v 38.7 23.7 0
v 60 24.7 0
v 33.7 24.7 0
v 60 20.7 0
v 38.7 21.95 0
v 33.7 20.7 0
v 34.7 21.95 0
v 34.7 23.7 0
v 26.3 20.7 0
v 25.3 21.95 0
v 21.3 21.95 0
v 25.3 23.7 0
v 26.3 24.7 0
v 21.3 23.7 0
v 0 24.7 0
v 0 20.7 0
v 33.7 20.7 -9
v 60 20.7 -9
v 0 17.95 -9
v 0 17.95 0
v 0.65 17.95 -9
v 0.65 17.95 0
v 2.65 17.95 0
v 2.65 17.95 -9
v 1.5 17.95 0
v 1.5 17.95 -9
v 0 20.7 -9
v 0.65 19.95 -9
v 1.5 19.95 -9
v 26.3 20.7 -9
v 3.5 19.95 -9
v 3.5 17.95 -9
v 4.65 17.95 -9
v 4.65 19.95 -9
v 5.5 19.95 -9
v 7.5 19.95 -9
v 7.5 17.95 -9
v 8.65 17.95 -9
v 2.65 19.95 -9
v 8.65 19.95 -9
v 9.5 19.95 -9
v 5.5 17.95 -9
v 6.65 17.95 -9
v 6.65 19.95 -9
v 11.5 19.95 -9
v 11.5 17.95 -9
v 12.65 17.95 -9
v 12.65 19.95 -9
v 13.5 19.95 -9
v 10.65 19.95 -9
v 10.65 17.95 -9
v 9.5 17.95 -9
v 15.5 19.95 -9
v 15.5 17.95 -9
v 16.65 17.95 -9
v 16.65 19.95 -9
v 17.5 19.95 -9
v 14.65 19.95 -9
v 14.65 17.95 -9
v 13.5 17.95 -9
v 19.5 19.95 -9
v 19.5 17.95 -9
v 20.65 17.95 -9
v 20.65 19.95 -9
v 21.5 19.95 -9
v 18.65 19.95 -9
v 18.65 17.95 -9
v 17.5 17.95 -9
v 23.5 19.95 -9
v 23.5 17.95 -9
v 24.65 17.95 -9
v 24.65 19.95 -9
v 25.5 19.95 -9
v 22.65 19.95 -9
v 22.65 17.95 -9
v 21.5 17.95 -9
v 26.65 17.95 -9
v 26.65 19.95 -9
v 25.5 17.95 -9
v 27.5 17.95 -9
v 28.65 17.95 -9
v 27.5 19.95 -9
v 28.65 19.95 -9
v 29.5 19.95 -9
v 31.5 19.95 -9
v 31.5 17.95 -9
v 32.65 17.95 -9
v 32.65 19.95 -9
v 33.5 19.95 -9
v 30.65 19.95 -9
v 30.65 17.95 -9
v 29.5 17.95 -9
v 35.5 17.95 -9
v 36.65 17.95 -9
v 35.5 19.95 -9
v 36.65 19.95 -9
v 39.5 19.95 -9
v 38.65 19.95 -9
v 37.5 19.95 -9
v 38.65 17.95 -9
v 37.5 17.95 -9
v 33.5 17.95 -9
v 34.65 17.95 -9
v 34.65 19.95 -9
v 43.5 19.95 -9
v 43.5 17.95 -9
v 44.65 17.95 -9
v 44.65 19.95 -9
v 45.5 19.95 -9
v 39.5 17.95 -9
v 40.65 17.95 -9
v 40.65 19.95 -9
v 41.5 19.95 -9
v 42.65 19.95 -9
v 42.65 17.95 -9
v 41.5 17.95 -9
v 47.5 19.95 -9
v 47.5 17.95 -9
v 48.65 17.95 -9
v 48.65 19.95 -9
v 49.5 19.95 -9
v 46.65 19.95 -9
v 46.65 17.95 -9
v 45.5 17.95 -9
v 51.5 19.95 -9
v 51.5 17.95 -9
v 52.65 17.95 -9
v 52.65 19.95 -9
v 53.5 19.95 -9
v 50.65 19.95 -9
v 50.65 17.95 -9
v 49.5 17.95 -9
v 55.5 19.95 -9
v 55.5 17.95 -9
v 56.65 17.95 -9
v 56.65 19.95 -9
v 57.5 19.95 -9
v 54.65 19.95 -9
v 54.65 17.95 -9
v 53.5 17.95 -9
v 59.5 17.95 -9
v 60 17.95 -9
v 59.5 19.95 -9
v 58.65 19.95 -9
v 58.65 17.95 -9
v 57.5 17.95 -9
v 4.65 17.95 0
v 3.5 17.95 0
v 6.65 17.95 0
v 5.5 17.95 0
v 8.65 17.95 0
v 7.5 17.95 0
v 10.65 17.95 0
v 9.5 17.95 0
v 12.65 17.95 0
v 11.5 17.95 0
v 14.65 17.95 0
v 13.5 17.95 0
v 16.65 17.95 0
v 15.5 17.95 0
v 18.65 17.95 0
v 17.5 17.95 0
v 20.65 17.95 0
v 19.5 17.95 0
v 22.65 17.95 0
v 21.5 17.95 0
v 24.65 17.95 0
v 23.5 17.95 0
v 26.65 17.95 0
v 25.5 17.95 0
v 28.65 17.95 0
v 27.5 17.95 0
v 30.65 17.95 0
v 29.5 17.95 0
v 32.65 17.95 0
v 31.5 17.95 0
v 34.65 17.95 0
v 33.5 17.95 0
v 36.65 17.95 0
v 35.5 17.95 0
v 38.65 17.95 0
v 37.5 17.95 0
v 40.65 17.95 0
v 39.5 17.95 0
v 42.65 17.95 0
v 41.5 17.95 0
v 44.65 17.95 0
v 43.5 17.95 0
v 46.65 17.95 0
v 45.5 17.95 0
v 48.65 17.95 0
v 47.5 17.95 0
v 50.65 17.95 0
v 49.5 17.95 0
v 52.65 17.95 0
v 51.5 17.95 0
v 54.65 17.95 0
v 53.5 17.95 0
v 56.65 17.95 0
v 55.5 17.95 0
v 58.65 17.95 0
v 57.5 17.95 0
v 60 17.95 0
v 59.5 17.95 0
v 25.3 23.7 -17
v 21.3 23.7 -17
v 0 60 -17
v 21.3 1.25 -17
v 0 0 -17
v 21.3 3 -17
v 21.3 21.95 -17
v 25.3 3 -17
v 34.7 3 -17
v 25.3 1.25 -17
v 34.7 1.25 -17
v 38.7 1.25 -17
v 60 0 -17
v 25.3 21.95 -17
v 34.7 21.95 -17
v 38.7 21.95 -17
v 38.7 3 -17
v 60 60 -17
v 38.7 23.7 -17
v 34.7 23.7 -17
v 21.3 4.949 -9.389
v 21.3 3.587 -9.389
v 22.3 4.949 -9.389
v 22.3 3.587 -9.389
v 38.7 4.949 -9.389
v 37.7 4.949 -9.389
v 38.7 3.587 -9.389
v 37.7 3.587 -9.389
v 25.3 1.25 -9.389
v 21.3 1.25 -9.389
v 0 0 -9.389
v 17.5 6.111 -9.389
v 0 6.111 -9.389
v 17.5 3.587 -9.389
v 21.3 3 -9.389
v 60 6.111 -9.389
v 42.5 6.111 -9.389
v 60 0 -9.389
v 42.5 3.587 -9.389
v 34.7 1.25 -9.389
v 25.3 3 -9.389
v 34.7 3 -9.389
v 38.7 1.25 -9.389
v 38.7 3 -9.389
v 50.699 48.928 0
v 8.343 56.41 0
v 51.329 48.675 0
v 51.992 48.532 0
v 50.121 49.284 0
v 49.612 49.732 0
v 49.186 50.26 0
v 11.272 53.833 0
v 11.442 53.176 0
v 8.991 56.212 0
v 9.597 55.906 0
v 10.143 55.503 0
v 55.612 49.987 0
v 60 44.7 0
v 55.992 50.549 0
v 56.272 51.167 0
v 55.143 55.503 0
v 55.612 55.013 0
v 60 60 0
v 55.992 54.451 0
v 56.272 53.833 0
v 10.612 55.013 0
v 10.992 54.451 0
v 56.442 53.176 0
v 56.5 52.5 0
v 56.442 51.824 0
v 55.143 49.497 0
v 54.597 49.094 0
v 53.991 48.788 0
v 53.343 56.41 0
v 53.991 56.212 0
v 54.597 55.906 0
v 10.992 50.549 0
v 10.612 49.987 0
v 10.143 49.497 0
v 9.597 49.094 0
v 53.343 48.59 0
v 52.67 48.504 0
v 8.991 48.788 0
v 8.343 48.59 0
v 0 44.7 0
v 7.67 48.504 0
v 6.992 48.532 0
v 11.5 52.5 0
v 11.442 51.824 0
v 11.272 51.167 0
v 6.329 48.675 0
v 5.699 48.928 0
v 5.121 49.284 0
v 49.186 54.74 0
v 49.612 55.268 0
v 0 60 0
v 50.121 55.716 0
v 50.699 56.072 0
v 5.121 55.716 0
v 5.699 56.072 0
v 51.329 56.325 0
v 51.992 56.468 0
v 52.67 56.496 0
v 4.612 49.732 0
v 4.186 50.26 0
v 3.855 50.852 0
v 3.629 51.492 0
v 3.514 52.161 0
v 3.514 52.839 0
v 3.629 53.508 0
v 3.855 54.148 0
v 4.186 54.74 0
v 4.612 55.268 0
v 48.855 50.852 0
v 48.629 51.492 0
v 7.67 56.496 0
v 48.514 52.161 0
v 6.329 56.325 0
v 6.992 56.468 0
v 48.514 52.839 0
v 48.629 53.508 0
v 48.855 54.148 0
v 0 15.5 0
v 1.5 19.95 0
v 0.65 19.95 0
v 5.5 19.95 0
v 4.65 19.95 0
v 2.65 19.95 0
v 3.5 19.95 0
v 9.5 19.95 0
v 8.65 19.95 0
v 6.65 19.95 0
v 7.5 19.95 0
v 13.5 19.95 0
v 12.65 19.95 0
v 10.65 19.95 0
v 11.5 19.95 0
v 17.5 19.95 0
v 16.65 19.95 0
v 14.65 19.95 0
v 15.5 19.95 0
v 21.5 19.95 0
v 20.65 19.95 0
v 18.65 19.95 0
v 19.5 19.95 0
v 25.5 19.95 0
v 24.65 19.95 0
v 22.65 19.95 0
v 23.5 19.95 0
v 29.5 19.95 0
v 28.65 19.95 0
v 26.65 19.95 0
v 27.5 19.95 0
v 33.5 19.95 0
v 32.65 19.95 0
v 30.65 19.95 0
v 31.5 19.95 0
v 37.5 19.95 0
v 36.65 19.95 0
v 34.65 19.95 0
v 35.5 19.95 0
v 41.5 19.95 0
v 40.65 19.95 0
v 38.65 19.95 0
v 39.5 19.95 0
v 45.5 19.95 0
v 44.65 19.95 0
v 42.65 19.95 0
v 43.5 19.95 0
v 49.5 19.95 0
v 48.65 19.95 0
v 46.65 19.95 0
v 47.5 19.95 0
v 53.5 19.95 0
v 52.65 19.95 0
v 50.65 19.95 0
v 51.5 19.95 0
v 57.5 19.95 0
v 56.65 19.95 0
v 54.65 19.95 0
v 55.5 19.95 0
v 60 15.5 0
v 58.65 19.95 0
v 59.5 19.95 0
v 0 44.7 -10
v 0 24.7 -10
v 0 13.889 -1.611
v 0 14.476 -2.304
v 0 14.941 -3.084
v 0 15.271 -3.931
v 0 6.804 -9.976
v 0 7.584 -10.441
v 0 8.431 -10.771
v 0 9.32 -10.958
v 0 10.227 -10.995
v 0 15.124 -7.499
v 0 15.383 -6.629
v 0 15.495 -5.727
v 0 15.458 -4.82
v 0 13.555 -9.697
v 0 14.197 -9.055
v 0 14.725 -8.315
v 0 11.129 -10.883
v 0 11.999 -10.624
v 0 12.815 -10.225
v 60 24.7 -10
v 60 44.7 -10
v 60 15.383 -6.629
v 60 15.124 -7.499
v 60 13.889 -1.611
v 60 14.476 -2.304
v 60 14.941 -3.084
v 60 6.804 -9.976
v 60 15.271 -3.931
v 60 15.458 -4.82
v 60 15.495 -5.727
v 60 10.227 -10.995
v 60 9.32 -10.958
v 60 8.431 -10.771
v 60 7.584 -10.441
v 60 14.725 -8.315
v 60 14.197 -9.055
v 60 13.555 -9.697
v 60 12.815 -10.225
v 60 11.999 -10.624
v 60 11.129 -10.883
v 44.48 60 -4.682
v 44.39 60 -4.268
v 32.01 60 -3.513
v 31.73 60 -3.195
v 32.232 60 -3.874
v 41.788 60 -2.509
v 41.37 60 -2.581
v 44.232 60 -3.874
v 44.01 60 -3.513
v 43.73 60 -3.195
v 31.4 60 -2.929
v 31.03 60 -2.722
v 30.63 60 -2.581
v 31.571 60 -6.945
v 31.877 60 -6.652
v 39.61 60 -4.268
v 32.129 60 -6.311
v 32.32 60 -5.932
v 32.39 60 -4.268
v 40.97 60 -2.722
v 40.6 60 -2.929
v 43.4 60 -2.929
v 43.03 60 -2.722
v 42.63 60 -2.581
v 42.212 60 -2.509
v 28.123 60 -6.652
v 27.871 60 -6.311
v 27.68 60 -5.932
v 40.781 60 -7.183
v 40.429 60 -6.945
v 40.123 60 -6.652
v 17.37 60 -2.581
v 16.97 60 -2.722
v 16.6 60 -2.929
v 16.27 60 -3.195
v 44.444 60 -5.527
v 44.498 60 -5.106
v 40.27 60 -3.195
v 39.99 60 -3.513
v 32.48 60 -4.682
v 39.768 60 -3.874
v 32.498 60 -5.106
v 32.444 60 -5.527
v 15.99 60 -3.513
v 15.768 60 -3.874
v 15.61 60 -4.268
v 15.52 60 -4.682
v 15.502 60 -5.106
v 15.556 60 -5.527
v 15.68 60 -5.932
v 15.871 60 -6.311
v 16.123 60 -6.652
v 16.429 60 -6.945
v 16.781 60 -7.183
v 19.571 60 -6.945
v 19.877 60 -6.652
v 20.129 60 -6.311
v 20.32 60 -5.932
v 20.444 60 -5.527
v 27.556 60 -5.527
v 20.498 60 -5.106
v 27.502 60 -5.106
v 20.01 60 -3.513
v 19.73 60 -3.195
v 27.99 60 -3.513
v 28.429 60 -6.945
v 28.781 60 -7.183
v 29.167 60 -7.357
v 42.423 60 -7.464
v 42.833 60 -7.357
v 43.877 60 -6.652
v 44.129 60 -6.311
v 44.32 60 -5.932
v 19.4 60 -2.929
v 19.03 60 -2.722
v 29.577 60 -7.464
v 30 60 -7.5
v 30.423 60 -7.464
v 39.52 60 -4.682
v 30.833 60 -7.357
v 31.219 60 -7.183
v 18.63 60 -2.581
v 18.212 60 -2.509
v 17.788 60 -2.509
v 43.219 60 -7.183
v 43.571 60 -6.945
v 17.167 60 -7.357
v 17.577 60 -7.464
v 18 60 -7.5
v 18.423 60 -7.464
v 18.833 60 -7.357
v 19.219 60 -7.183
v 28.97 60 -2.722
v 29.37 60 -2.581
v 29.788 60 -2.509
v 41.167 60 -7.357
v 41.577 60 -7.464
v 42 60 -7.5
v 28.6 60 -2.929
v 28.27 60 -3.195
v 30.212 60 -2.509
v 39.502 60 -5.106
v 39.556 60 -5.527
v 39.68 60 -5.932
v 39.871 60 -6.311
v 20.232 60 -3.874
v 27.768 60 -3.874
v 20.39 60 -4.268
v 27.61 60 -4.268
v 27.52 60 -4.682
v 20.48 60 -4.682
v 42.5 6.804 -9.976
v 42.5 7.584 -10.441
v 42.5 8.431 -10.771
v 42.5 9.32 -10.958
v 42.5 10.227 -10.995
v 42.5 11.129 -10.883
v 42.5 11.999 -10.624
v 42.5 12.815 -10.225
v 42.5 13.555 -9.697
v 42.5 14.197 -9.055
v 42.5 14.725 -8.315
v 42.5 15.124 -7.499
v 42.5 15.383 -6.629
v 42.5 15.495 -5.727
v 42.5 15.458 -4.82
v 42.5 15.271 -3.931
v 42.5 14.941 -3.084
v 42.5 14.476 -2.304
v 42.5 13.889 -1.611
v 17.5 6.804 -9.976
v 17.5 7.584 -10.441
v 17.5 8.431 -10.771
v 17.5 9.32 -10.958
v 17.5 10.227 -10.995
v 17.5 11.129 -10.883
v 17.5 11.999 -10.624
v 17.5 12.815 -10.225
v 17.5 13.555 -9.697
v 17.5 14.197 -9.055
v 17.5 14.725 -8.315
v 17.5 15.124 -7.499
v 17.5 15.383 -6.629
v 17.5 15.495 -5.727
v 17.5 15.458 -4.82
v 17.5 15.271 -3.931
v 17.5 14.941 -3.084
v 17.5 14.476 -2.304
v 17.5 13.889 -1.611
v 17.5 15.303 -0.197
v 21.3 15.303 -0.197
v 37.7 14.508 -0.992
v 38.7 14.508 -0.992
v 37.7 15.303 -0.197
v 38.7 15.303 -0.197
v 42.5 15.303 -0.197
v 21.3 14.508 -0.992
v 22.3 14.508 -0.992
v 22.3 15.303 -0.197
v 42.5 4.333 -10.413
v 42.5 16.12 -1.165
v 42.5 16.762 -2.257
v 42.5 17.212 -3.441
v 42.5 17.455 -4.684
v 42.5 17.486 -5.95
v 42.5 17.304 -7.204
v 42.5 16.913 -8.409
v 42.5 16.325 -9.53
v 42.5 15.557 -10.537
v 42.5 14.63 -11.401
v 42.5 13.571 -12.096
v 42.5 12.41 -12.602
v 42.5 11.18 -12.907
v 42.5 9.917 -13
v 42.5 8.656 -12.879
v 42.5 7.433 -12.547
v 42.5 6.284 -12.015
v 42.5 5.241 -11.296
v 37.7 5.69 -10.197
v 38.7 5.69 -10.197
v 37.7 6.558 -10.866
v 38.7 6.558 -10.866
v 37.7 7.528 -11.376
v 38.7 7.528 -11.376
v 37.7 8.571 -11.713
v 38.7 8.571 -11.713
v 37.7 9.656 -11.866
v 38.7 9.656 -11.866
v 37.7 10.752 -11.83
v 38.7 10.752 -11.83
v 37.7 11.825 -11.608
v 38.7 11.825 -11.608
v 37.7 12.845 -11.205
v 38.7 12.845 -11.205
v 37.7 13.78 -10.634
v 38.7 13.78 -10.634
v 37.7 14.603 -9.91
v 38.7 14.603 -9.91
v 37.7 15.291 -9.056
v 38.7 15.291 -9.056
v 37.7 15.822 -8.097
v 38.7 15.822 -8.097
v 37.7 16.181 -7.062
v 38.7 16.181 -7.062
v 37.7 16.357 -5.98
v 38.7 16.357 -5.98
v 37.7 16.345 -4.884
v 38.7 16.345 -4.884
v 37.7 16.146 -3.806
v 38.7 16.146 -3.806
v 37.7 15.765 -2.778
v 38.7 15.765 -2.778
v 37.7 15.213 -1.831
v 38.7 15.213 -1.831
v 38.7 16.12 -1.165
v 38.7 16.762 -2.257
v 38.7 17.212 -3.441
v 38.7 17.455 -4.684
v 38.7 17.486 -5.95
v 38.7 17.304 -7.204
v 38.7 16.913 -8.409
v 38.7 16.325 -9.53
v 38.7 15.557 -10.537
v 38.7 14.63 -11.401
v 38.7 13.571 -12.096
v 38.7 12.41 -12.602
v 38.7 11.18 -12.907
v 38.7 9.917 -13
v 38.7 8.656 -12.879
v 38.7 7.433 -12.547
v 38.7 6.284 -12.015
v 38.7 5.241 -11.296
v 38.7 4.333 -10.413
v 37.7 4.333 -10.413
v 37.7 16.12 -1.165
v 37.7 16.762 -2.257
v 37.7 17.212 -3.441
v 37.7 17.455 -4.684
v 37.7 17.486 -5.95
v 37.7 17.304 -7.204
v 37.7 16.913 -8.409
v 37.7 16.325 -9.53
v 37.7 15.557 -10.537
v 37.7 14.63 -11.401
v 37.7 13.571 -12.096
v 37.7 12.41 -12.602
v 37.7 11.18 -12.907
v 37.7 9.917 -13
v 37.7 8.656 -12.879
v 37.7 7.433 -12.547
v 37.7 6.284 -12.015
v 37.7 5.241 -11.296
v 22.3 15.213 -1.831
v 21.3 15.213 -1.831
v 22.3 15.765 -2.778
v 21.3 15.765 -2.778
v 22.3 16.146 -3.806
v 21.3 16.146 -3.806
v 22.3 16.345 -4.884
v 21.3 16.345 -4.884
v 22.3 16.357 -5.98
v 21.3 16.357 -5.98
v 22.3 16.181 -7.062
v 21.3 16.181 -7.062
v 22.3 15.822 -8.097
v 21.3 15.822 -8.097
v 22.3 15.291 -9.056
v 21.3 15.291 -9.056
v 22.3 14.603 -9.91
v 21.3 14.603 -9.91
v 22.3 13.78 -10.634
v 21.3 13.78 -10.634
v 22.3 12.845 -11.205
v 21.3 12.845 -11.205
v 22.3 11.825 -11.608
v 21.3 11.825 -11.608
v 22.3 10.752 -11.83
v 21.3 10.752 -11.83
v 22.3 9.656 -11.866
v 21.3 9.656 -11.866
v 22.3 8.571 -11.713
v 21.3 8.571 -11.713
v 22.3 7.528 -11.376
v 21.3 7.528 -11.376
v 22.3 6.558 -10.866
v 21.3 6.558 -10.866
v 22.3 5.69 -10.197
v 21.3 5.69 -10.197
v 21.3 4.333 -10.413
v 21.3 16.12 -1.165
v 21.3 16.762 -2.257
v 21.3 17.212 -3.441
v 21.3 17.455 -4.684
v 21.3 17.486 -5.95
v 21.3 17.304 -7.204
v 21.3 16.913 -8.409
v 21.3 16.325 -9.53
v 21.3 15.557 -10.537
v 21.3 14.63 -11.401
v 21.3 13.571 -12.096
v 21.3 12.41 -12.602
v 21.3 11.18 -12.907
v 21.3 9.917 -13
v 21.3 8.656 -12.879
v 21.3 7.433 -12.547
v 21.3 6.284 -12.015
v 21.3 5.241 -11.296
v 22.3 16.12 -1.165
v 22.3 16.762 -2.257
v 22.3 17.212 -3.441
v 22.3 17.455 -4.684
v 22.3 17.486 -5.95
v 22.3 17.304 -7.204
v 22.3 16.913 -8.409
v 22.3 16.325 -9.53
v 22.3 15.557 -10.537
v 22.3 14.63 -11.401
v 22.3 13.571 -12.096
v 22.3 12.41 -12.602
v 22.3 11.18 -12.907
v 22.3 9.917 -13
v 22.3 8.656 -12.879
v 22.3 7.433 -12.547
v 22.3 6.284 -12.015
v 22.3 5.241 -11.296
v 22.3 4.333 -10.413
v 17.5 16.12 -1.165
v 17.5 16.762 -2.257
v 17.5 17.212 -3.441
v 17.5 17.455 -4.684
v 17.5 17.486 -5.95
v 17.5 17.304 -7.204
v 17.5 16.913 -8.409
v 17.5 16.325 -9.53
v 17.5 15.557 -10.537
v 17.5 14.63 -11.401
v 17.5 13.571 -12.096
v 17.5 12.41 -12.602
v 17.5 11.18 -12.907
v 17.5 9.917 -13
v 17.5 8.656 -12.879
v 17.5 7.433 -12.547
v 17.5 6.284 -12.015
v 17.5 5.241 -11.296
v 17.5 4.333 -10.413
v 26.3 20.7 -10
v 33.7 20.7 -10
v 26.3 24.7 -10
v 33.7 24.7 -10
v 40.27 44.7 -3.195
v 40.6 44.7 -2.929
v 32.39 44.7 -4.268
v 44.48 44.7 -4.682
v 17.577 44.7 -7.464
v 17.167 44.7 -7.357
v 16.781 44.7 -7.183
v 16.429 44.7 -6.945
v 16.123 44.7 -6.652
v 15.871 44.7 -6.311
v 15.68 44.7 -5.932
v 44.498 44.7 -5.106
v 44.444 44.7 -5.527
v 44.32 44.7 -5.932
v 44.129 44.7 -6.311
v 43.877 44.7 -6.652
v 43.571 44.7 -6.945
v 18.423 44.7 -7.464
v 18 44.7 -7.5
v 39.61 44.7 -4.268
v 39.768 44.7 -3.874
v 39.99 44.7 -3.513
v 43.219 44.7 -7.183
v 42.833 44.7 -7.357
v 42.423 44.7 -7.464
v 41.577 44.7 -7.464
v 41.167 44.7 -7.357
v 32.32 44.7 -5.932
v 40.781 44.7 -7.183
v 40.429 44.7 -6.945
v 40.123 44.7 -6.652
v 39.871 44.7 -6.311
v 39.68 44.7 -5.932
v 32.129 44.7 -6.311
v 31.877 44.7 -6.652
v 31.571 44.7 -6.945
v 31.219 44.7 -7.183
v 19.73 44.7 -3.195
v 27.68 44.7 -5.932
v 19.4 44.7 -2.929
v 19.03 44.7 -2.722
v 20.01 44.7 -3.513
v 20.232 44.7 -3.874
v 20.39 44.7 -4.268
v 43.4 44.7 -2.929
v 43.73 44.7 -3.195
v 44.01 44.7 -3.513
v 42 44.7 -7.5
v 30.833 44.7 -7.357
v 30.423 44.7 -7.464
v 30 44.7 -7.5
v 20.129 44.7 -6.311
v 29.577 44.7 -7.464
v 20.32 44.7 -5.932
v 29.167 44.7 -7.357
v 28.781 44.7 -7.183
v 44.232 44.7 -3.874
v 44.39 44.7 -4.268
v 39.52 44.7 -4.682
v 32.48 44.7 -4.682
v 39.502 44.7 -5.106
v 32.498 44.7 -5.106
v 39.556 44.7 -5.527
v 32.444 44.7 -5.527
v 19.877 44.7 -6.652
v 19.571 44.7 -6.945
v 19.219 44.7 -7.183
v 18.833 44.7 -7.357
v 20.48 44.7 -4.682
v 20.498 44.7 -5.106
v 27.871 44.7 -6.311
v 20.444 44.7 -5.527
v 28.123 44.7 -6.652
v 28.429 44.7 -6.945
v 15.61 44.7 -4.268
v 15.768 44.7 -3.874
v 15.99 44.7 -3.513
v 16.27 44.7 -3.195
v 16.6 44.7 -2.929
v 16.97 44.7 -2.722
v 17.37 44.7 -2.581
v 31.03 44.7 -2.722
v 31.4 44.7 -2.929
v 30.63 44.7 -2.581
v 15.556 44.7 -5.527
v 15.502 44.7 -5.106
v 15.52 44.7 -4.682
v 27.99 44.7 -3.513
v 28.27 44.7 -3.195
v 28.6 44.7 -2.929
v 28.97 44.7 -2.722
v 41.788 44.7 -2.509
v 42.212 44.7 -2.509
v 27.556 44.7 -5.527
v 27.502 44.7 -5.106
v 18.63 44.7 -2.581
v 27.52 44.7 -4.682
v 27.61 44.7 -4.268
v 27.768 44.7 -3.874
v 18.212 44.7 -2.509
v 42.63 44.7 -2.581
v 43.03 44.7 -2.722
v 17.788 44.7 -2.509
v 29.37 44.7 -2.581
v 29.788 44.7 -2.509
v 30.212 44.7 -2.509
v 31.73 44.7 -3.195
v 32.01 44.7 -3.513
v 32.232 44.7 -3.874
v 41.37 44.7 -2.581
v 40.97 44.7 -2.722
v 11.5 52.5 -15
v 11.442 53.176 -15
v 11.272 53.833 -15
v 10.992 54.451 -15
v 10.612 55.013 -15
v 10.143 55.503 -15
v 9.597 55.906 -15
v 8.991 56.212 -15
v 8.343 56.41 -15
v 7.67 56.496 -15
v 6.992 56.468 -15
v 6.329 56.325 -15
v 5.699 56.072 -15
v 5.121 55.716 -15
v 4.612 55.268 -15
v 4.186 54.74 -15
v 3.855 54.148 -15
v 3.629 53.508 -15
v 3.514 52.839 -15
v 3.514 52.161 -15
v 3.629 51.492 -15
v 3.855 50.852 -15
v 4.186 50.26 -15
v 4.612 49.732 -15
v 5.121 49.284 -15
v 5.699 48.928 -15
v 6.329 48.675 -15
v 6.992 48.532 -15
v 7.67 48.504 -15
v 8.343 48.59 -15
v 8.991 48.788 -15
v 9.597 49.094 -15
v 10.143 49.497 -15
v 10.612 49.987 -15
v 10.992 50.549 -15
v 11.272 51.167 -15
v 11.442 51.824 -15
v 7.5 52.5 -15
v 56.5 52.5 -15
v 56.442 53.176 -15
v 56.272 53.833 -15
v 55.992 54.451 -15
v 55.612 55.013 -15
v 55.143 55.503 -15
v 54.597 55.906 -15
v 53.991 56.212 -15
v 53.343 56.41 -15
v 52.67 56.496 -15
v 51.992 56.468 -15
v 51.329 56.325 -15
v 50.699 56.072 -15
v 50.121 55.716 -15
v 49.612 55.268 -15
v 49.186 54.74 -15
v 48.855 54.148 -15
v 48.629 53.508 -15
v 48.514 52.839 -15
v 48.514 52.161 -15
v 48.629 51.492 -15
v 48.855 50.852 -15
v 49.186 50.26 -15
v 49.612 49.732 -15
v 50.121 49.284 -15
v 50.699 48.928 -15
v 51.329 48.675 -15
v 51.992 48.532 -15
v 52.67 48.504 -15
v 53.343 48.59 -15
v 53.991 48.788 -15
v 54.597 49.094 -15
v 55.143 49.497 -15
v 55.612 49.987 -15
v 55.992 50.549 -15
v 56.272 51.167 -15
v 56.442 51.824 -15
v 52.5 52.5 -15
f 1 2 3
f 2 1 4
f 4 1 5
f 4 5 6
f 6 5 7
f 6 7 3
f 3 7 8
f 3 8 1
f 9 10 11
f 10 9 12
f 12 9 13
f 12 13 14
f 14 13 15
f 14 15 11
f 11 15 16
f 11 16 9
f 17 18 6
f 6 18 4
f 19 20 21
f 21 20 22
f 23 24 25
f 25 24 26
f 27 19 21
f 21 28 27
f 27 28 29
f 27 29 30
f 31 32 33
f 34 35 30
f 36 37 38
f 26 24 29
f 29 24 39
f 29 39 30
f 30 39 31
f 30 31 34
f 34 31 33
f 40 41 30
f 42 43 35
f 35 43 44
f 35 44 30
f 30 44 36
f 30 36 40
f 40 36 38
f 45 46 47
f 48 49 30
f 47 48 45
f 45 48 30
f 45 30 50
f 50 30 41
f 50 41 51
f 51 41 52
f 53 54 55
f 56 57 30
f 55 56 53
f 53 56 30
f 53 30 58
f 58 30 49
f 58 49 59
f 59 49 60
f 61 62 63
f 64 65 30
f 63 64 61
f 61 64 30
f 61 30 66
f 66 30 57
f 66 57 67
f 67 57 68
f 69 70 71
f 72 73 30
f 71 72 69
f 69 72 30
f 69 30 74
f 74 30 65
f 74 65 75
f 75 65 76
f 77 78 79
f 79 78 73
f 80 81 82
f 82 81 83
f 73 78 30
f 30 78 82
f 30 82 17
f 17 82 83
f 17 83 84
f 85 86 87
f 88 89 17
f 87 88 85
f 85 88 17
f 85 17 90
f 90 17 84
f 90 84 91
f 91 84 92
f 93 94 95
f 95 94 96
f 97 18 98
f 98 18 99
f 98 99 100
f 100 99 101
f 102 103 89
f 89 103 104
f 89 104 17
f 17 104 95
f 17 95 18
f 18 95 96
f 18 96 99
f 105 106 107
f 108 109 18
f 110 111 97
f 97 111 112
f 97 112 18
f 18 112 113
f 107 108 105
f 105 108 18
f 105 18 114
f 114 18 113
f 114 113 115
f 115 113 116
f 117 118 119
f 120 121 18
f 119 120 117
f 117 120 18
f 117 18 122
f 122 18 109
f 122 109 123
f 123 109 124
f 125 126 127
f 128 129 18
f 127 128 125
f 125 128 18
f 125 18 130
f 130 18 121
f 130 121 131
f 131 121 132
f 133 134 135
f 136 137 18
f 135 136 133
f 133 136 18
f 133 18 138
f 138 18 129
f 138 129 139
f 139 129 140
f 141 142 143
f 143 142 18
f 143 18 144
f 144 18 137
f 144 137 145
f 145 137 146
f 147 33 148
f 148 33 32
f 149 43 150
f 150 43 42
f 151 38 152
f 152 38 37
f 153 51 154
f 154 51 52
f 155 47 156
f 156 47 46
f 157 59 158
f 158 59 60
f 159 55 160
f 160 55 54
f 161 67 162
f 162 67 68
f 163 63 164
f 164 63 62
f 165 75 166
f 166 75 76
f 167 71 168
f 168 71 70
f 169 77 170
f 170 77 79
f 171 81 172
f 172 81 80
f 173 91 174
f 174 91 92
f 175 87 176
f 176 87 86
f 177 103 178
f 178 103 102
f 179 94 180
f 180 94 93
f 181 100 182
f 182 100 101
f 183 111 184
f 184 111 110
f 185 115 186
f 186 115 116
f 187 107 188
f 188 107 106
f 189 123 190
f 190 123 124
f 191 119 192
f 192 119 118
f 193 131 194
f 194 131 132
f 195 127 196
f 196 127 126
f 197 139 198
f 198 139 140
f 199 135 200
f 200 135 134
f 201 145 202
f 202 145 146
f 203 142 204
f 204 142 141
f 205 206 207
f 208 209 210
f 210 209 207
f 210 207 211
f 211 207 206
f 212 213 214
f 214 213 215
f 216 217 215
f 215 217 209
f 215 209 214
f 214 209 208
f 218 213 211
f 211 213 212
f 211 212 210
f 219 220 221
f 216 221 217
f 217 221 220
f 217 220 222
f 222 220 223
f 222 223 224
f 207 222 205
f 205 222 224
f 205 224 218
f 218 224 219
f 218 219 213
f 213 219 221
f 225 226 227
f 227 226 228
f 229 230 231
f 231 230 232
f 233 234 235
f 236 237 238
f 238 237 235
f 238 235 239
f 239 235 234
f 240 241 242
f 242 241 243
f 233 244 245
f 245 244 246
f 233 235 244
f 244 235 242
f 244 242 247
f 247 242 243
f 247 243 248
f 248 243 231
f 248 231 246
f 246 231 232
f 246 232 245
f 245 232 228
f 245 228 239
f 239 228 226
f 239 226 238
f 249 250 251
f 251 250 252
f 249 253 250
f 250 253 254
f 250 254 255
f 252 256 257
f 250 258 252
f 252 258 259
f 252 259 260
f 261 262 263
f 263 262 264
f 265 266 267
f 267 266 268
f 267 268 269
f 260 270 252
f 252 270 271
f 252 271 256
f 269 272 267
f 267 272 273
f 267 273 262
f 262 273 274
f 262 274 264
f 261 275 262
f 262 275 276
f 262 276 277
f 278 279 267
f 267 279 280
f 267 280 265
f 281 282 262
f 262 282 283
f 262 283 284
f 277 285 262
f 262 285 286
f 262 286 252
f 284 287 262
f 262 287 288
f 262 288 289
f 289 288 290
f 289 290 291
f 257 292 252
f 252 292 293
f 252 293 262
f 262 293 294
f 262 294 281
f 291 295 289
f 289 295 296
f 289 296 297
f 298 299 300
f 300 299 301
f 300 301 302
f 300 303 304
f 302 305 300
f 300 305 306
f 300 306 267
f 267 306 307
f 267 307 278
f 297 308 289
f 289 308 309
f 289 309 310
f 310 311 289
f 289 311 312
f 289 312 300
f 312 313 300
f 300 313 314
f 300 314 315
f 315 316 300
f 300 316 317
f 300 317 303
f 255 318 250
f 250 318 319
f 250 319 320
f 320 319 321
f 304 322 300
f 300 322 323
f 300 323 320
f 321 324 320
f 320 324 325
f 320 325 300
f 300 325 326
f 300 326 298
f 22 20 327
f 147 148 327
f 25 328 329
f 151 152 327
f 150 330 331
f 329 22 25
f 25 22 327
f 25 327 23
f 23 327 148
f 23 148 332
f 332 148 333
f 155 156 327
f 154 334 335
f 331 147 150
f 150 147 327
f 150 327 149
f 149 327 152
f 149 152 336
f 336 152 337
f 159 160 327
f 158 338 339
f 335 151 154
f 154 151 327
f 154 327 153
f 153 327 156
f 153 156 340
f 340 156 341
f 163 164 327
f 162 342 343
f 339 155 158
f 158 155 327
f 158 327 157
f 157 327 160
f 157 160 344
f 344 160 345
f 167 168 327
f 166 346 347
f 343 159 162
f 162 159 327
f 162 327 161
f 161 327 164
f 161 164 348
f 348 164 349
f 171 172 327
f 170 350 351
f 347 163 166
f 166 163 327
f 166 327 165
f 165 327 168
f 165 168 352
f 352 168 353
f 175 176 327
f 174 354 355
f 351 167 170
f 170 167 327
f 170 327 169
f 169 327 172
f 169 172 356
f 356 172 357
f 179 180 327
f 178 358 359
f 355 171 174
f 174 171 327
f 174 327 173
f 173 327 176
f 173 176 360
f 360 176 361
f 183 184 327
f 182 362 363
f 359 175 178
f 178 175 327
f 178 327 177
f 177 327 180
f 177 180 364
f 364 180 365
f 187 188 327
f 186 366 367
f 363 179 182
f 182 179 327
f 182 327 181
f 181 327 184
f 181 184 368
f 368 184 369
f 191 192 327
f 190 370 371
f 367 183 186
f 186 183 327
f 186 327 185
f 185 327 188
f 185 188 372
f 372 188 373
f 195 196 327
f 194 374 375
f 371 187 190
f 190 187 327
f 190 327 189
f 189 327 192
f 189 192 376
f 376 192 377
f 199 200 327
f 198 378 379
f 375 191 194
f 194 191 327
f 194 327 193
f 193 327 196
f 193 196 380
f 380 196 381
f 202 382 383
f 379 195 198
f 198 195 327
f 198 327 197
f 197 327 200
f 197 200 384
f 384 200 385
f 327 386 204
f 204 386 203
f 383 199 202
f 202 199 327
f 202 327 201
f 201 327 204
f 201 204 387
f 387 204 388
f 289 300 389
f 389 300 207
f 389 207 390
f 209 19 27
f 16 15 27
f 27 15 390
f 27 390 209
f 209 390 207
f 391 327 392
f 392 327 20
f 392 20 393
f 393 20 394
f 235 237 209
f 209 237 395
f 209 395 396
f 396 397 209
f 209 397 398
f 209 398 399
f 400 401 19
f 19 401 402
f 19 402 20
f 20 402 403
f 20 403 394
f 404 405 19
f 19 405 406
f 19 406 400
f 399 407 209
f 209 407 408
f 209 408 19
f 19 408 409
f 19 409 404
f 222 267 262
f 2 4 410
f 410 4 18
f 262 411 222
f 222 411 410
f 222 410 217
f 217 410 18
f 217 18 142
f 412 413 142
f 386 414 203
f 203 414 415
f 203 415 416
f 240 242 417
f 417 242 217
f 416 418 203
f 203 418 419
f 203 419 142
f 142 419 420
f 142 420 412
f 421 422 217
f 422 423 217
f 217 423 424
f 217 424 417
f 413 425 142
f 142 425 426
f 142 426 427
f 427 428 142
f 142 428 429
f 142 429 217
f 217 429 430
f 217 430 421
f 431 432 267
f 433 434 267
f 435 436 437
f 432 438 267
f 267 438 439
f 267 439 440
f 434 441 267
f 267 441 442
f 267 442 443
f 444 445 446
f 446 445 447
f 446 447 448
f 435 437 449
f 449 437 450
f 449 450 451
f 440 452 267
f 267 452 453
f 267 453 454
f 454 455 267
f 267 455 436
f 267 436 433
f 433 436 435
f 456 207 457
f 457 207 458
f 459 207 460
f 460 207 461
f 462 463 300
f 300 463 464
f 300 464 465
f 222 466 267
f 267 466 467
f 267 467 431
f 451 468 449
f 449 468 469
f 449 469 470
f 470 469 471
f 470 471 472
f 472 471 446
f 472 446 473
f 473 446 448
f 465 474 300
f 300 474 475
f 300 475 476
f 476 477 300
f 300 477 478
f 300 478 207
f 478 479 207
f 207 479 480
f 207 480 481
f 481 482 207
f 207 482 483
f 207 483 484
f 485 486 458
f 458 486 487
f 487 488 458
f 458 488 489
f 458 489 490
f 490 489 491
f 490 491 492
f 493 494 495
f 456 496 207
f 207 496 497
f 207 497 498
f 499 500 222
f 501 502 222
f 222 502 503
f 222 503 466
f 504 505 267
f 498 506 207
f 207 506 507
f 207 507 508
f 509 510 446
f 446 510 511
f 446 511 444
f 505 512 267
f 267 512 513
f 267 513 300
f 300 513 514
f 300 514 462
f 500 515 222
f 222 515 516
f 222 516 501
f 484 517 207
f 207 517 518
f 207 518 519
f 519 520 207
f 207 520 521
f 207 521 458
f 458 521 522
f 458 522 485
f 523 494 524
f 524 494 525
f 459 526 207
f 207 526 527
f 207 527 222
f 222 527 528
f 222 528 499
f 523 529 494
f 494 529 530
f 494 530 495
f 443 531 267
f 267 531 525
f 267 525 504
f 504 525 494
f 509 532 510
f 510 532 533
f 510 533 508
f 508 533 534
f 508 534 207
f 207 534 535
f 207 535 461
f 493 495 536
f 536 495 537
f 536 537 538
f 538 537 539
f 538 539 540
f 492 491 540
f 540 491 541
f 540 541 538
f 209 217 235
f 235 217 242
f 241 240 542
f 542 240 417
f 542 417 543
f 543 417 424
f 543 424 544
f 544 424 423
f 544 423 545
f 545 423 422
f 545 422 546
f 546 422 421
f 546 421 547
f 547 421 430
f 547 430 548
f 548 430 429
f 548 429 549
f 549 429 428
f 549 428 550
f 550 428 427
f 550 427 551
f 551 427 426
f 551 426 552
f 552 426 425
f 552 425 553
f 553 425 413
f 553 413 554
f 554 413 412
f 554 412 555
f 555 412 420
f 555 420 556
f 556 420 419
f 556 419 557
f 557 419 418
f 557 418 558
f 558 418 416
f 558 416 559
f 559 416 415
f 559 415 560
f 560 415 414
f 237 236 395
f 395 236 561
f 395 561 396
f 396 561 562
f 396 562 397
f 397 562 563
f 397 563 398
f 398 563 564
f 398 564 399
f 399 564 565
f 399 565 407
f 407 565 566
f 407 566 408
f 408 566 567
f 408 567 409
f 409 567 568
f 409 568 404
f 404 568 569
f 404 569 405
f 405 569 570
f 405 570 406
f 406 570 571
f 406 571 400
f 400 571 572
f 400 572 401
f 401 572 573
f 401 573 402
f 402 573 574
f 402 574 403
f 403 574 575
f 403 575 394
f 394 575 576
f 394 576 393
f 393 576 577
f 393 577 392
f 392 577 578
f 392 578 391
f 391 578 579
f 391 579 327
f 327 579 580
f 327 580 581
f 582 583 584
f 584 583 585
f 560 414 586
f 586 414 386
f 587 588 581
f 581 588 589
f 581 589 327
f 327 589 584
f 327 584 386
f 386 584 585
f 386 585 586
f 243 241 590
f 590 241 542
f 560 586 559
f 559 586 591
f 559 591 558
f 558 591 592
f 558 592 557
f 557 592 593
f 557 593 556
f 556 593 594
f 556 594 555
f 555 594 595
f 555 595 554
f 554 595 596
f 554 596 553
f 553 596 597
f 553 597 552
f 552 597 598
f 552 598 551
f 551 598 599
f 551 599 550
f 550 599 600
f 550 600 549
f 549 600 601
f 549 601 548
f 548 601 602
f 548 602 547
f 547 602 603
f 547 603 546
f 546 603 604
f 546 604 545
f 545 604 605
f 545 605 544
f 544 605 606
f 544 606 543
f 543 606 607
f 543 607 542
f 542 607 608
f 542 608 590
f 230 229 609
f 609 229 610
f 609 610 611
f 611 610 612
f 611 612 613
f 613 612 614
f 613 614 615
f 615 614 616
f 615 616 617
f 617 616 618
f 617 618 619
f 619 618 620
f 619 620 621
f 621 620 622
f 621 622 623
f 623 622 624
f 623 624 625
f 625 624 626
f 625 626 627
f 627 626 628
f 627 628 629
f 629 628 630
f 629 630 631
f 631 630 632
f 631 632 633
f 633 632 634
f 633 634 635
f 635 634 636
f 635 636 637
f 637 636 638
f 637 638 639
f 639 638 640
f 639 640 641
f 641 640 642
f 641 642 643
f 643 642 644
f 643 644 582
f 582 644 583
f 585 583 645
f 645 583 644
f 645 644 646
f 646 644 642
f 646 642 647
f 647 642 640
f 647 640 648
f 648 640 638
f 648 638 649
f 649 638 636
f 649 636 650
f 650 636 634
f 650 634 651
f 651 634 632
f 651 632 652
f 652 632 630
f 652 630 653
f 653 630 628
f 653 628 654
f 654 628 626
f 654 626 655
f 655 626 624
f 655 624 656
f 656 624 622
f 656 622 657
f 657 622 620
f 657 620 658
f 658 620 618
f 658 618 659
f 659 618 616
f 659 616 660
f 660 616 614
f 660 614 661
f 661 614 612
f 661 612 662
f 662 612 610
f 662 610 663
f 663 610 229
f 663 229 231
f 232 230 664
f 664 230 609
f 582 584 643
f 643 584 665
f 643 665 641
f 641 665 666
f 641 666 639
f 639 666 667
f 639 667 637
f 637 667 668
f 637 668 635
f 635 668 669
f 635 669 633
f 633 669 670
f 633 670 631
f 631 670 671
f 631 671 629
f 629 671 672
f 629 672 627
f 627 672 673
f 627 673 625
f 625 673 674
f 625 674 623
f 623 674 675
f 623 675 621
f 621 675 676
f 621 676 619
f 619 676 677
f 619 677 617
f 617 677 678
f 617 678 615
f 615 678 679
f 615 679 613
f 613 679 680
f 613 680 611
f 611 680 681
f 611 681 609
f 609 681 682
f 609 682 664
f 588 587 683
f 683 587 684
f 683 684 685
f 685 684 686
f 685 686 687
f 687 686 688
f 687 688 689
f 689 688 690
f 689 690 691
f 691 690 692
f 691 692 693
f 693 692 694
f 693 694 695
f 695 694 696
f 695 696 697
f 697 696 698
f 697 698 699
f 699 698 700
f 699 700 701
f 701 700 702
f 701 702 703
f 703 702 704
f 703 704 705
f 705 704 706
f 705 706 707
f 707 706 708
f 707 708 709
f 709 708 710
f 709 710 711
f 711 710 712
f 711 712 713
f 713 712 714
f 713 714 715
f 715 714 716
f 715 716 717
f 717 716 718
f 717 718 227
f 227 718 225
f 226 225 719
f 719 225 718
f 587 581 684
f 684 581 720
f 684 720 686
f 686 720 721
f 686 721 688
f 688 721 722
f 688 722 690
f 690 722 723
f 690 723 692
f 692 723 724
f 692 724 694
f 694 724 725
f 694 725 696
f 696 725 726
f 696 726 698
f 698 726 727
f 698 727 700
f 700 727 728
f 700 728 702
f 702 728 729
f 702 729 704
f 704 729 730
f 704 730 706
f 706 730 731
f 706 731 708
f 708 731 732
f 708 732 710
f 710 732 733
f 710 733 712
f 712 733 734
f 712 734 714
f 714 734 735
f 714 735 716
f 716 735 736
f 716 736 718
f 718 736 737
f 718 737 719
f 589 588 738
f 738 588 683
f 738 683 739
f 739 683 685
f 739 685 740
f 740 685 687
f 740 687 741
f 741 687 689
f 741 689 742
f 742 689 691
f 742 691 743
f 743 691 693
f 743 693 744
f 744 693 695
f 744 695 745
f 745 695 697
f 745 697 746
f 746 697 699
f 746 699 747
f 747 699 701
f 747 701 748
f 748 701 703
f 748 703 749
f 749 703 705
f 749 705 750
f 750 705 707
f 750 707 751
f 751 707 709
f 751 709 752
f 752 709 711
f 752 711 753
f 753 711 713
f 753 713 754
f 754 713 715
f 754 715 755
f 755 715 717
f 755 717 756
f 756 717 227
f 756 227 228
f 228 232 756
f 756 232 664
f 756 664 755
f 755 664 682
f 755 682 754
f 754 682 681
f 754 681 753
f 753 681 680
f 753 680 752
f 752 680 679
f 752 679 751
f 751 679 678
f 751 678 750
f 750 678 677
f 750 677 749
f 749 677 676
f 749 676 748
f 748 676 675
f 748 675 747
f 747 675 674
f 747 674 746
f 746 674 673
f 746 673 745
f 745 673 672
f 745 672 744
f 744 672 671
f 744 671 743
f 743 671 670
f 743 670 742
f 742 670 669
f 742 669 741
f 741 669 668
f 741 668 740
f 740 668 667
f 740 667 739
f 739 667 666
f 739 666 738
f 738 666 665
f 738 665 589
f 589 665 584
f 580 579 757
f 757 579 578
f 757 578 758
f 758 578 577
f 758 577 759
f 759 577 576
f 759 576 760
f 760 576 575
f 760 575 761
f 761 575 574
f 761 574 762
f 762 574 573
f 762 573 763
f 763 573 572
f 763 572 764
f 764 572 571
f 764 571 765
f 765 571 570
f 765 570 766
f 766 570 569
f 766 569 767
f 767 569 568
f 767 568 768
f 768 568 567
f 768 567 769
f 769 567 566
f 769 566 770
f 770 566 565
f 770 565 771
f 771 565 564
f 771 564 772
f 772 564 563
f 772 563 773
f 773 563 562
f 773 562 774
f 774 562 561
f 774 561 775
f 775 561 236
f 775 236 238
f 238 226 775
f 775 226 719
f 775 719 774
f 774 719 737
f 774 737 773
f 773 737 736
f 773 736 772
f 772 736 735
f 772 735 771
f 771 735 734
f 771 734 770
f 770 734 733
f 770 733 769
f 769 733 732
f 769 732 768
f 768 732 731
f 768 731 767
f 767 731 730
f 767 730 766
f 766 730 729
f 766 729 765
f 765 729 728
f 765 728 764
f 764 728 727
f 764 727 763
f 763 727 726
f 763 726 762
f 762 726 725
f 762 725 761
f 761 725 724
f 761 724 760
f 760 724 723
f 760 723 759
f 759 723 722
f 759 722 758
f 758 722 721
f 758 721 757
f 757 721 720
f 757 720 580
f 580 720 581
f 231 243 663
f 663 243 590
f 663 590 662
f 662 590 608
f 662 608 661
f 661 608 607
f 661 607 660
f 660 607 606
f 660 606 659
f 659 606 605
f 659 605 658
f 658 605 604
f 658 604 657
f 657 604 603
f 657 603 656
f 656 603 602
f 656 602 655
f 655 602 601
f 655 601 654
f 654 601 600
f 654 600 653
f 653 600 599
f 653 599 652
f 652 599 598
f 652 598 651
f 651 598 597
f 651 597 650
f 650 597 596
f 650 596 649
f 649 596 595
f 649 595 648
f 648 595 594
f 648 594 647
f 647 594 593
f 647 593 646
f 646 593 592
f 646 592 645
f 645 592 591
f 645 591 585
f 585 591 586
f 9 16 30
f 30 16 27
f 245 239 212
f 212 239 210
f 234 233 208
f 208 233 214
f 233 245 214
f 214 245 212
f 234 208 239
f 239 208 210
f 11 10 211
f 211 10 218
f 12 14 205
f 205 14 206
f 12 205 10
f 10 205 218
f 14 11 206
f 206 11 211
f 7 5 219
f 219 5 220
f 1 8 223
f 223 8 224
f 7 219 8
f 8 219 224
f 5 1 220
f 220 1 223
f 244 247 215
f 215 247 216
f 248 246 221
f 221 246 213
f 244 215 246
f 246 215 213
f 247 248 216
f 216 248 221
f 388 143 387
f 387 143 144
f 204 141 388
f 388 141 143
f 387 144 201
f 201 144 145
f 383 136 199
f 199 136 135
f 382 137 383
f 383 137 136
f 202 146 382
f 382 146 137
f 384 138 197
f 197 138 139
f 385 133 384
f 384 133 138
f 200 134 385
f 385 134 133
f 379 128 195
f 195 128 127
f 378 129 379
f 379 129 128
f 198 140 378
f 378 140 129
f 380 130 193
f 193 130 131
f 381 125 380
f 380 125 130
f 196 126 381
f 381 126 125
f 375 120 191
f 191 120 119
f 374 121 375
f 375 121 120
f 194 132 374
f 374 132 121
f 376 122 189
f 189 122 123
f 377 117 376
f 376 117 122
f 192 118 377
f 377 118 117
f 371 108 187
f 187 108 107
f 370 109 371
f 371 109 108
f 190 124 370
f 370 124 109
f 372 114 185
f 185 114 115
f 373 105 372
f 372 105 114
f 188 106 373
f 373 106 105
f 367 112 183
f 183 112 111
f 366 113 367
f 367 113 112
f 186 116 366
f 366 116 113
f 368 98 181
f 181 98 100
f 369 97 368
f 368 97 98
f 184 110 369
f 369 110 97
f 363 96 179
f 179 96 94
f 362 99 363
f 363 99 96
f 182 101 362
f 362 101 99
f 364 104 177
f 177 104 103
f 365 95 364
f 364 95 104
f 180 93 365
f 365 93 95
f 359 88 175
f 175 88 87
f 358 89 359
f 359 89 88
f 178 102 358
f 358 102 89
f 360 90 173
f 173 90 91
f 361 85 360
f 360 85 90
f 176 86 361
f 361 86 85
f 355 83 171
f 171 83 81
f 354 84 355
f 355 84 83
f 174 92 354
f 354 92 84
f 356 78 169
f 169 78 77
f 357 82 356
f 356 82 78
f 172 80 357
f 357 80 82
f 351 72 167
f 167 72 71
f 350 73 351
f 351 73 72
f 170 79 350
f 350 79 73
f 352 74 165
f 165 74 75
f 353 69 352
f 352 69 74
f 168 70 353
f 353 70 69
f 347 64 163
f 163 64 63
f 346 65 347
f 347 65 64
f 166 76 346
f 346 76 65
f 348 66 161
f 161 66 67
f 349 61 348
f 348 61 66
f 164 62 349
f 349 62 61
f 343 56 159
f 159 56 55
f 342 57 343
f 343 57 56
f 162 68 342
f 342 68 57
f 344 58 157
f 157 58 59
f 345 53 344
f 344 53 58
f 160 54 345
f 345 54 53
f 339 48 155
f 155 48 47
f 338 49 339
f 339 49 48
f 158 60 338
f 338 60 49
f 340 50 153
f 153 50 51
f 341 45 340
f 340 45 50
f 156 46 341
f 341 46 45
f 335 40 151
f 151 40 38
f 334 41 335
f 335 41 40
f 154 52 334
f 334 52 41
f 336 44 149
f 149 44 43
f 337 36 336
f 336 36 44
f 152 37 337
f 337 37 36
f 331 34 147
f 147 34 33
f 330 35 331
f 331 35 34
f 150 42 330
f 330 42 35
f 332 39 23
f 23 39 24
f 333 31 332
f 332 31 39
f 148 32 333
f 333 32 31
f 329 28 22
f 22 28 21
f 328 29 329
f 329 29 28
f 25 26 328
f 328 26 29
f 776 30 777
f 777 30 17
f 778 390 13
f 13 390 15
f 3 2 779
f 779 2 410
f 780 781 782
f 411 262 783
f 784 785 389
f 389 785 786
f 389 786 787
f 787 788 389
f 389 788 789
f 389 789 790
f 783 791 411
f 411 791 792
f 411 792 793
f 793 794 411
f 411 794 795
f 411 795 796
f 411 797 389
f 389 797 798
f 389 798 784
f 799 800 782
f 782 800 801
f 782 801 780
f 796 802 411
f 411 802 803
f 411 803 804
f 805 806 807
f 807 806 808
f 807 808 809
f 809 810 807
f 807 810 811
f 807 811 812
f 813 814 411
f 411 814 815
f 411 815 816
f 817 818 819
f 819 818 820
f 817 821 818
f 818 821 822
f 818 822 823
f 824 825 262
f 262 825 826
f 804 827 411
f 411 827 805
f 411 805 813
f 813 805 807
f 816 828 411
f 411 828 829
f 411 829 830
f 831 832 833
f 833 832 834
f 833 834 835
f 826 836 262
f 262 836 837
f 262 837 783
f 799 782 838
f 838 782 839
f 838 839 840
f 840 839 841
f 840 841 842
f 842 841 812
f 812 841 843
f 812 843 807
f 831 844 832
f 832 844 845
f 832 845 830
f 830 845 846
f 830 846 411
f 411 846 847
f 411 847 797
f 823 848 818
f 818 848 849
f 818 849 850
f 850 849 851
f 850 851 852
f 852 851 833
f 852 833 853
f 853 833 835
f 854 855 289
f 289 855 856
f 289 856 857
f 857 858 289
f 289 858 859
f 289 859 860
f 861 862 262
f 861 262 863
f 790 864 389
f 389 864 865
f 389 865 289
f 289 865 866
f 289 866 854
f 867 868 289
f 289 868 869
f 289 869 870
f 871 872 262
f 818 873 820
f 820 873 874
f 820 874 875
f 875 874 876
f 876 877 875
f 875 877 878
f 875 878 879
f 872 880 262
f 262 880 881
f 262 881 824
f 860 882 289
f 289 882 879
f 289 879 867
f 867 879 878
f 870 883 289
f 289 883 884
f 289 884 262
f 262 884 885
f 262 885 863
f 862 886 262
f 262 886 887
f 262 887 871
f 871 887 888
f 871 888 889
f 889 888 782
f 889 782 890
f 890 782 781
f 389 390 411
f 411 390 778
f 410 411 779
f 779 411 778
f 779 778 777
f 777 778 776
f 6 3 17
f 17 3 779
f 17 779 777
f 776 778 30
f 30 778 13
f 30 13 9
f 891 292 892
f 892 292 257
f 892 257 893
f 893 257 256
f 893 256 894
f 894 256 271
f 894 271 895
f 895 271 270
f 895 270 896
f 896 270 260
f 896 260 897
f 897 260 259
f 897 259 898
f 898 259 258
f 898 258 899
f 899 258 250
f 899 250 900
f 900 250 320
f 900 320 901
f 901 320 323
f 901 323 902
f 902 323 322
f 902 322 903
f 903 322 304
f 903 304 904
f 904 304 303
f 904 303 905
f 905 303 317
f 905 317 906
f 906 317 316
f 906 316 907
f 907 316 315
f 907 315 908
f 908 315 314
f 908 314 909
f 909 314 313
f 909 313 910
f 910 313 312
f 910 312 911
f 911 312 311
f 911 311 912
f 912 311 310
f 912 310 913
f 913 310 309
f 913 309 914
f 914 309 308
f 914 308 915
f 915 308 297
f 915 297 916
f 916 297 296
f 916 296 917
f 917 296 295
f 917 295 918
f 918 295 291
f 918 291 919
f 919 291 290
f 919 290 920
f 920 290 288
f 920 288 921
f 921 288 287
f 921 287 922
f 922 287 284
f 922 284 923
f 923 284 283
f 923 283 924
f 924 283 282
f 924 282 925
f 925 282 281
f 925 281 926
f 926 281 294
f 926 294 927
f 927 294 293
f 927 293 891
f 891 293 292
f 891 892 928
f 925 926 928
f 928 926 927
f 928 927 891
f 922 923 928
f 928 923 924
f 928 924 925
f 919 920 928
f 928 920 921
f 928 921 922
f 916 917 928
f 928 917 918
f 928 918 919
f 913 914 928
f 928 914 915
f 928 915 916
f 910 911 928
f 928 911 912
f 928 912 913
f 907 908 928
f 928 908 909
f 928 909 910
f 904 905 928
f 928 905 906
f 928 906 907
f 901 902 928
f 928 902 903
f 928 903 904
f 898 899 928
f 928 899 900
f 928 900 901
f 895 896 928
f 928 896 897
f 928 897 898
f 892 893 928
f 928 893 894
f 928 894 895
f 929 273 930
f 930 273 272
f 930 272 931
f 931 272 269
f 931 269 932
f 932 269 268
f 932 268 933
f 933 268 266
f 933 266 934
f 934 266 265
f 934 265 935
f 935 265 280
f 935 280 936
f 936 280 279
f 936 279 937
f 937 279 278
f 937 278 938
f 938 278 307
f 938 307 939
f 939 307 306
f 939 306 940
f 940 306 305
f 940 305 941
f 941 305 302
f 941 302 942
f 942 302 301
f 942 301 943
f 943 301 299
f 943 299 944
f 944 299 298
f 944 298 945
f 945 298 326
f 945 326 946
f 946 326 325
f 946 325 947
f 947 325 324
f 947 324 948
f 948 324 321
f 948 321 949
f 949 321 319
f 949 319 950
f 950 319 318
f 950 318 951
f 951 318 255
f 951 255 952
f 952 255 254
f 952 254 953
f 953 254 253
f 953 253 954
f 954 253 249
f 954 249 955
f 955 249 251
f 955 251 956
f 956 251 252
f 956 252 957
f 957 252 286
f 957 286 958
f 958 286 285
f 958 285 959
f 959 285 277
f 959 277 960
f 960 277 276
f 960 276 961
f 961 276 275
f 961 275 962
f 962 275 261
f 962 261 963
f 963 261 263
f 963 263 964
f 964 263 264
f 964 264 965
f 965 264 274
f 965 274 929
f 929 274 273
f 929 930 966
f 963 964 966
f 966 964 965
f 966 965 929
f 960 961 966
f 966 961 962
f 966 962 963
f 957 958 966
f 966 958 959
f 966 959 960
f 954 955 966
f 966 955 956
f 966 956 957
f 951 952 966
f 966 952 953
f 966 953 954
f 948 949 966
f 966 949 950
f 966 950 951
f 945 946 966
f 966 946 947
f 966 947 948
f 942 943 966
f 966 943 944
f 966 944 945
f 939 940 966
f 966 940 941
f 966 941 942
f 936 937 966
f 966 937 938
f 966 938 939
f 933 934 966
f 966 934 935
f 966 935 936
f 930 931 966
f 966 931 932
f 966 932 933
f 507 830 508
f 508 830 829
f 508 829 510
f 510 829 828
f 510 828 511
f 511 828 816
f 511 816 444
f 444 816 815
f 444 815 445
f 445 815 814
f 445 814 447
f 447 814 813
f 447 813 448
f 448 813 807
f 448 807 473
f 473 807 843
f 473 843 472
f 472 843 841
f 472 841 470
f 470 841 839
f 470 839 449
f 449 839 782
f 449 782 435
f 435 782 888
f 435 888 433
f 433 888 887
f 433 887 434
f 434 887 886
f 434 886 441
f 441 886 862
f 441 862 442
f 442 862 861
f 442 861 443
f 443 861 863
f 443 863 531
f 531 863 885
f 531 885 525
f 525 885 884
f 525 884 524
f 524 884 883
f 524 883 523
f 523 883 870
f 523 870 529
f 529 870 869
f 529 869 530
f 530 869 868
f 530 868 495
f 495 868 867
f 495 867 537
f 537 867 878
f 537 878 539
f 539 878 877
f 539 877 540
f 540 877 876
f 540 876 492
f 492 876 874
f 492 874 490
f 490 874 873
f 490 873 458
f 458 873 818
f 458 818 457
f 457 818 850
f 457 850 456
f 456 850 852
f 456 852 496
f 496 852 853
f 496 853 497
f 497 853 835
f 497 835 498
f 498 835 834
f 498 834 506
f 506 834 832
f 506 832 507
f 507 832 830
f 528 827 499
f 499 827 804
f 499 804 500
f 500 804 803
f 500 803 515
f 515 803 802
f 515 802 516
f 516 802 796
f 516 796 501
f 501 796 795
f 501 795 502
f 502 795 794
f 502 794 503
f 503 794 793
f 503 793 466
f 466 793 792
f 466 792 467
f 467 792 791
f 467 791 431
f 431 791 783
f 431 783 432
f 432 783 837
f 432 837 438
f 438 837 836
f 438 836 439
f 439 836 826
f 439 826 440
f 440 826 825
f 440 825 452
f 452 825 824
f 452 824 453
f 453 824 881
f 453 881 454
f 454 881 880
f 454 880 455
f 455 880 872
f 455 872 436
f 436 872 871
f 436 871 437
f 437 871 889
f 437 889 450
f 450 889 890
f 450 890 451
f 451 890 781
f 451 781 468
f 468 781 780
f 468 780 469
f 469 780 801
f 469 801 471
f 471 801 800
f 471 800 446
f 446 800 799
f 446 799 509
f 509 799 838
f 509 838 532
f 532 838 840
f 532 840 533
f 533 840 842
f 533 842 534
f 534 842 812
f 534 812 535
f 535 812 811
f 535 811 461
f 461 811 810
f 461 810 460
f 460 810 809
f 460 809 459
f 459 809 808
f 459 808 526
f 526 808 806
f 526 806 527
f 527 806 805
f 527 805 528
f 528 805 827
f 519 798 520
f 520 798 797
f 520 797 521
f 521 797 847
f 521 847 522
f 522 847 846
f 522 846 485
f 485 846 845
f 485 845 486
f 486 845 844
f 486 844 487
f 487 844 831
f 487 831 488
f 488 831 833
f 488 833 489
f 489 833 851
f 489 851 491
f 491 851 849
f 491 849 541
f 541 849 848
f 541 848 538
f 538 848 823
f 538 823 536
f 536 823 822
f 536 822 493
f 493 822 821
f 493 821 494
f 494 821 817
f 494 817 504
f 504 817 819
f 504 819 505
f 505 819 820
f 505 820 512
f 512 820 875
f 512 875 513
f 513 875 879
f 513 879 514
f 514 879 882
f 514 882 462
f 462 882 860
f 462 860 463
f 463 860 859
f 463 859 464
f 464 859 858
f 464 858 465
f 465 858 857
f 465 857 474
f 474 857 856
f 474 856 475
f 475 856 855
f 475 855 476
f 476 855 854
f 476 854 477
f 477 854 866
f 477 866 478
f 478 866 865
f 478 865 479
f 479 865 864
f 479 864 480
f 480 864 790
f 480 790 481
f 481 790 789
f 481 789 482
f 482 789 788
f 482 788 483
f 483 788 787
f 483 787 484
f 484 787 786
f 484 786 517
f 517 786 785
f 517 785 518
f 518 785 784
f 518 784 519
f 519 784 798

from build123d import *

# Parameters (mm, degrees)
SKETCH1_W           = 60
SKETCH1_H           = 17
BOSS_EXTRUDE2_DEPTH = 60
SKETCH5_R           = 7.5
CUT_EXTRUDE3_DEPTH  = 12.5
BOSS_EXTRUDE5_START = 1
SKETCH7_R           = 7.5
SKETCH7_R_2         = 6.375
BOSS_EXTRUDE5_DEPTH = 1
SKETCH8_R           = 7.5
SKETCH8_R_2         = 6.375
BOSS_EXTRUDE6_DEPTH = 1
SKETCH3_W           = 14.616308542
SKETCH3_H           = 2.75
CUT_EXTRUDE2_DEPTH  = 87.539008545
SKETCH9_W           = 29.365083629
SKETCH9_H           = 1.75
SKETCH9_W_2         = 26.887211927
CUT_EXTRUDE4_DEPTH  = 4
SKETCH10_W          = 36.539507471
SKETCH10_H          = 1.75
SKETCH10_W_2        = 38.625095797
CUT_EXTRUDE5_DEPTH  = 4
SKETCH12_W          = 0.85
SKETCH12_H          = 2
BOSS_EXTRUDE7_DEPTH = 9
CUT_EXTRUDE6_DEPTH  = 10
SKETCH14_R          = 4
CUT_EXTRUDE7_DEPTH  = 15
SKETCH15_R          = 2.5
CUT_EXTRUDE8_DEPTH  = 15.3


with BuildPart() as part:
    # Sketch1 → Boss-Extrude2 (new body)
    with BuildSketch(Plane(origin=(0, 0, 0), x_dir=(1, 0, 0), z_dir=(0, 1, 0))):
        with Locations((30, 8.5)):
            Rectangle(SKETCH1_W, SKETCH1_H)
    extrude(amount=BOSS_EXTRUDE2_DEPTH)

    # Sketch5 → Cut-Extrude3 (cut, symmetric)
    with BuildSketch(Plane(origin=(30, 0, 0), x_dir=(0, 0, -1), z_dir=(1, 0, 0))):
        with Locations((5.5, 10)):
            Circle(SKETCH5_R)
    extrude(amount=CUT_EXTRUDE3_DEPTH, both=True, mode=Mode.SUBTRACT)

    # Sketch7 → Boss-Extrude5 (add)
    with BuildSketch(Plane(origin=(21.3, 0, 0), x_dir=(0, 0, -1), z_dir=(1, 0, 0)).offset(BOSS_EXTRUDE5_START)):
        with Locations((5.5, 10)):
            Circle(SKETCH7_R)
        with Locations((5.5, 10)):
            Circle(SKETCH7_R_2, mode=Mode.SUBTRACT)
    extrude(amount=-BOSS_EXTRUDE5_DEPTH)

    # Sketch8 → Boss-Extrude6 (add)
    with BuildSketch(Plane.ZY.offset(-38.7)):
        with Locations((-5.5, 10)):
            Circle(SKETCH8_R)
        with Locations(Location((-5.5, 10, 0), (0, 0, 180))):
            Circle(SKETCH8_R_2, mode=Mode.SUBTRACT)
    extrude(amount=BOSS_EXTRUDE6_DEPTH)

    # Sketch3 → Cut-Extrude2 (cut, through all)
    with BuildSketch(Plane(origin=(60, 0, 0), x_dir=(0, 0, -1), z_dir=(1, 0, 0))):
        with BuildLine():
            Line((0, 15.5), (-6.640665203, 15.5))
            Line((-6.640665203, 15.5), (-6.640665203, 0))
            Line((-6.640665203, 0), (0, 0))
            Line((0, 0), (9.389087297, 0))
            Line((9.389087297, 0), (9.389087297, 6.110912703))
            ThreePointArc((9.389087297, 6.110912703), (9.389087297, 13.889087297), (1.610912703, 13.889087297))
            Line((1.610912703, 13.889087297), (0, 15.5))
        make_face()
        with Locations((1.691845729, 19.325)):
            Rectangle(SKETCH3_W, SKETCH3_H)
    extrude(amount=-CUT_EXTRUDE2_DEPTH, mode=Mode.SUBTRACT)

    # Sketch9 → Cut-Extrude4 (cut)
    with BuildSketch(Plane(origin=(21.3, 0, 0), x_dir=(0, 0, -1), z_dir=(1, 0, 0))):
        with Locations((7.065771792, 2.125)):
            Rectangle(SKETCH9_W, SKETCH9_H)
        with Locations((6.15524604, 22.825)):
            Rectangle(SKETCH9_W_2, SKETCH9_H)
    extrude(amount=CUT_EXTRUDE4_DEPTH, mode=Mode.SUBTRACT)

    # Sketch10 → Cut-Extrude5 (cut)
    with BuildSketch(Plane.ZY.offset(-38.7)):
        with Locations((-12.469654385, 22.825)):
            Rectangle(SKETCH10_W, SKETCH10_H)
        with Locations((-10.676048425, 2.125)):
            Rectangle(SKETCH10_W_2, SKETCH10_H)
    extrude(amount=CUT_EXTRUDE5_DEPTH, mode=Mode.SUBTRACT)

    # Sketch12 → Boss-Extrude7 (add)
    with BuildSketch(Plane.XY.offset(-9)):
        with Locations((59.075, 18.95)):
            Rectangle(SKETCH12_W, SKETCH12_H)
        with Locations((57.075, 18.95)):
            Rectangle(SKETCH12_W, SKETCH12_H)
        with Locations((55.075, 18.95)):
            Rectangle(SKETCH12_W, SKETCH12_H)
        with Locations((53.075, 18.95)):
            Rectangle(SKETCH12_W, SKETCH12_H)
        with Locations((51.075, 18.95)):
            Rectangle(SKETCH12_W, SKETCH12_H)
        with Locations((49.075, 18.95)):
            Rectangle(SKETCH12_W, SKETCH12_H)
        with Locations((47.075, 18.95)):
            Rectangle(SKETCH12_W, SKETCH12_H)
        with Locations((45.075, 18.95)):
            Rectangle(SKETCH12_W, SKETCH12_H)
        with Locations((43.075, 18.95)):
            Rectangle(SKETCH12_W, SKETCH12_H)
        with Locations((41.075, 18.95)):
            Rectangle(SKETCH12_W, SKETCH12_H)
        with Locations((39.075, 18.95)):
            Rectangle(SKETCH12_W, SKETCH12_H)
        with Locations((37.075, 18.95)):
            Rectangle(SKETCH12_W, SKETCH12_H)
        with Locations((35.075, 18.95)):
            Rectangle(SKETCH12_W, SKETCH12_H)
        with Locations((33.075, 18.95)):
            Rectangle(SKETCH12_W, SKETCH12_H)
        with Locations((31.075, 18.95)):
            Rectangle(SKETCH12_W, SKETCH12_H)
        with Locations((29.075, 18.95)):
            Rectangle(SKETCH12_W, SKETCH12_H)
        with Locations((27.075, 18.95)):
            Rectangle(SKETCH12_W, SKETCH12_H)
        with Locations((25.075, 18.95)):
            Rectangle(SKETCH12_W, SKETCH12_H)
        with Locations((23.075, 18.95)):
            Rectangle(SKETCH12_W, SKETCH12_H)
        with Locations((21.075, 18.95)):
            Rectangle(SKETCH12_W, SKETCH12_H)
        with Locations((19.075, 18.95)):
            Rectangle(SKETCH12_W, SKETCH12_H)
        with Locations((17.075, 18.95)):
            Rectangle(SKETCH12_W, SKETCH12_H)
        with Locations((15.075, 18.95)):
            Rectangle(SKETCH12_W, SKETCH12_H)
        with Locations((13.075, 18.95)):
            Rectangle(SKETCH12_W, SKETCH12_H)
        with Locations((11.075, 18.95)):
            Rectangle(SKETCH12_W, SKETCH12_H)
        with Locations((9.075, 18.95)):
            Rectangle(SKETCH12_W, SKETCH12_H)
        with Locations((7.075, 18.95)):
            Rectangle(SKETCH12_W, SKETCH12_H)
        with Locations((5.075, 18.95)):
            Rectangle(SKETCH12_W, SKETCH12_H)
        with Locations((3.075, 18.95)):
            Rectangle(SKETCH12_W, SKETCH12_H)
        with Locations((1.075, 18.95)):
            Rectangle(SKETCH12_W, SKETCH12_H)
    extrude(amount=BOSS_EXTRUDE7_DEPTH)

    # Sketch13 → Cut-Extrude6 (cut)
    with BuildSketch(Plane.XY):
        Polygon((33.7, 24.7), (33.7, 20.7), (26.3, 20.7), (26.3, 24.7), (-1.390912484, 24.7), (-1.390912484, 44.7), (62.591854088, 44.7), (62.591854088, 24.7), align=None)
    extrude(amount=-CUT_EXTRUDE6_DEPTH, mode=Mode.SUBTRACT)

    # Sketch14 → Cut-Extrude7 (cut)
    with BuildSketch(Plane.XY):
        with Locations((7.5, 52.5)):
            Circle(SKETCH14_R)
        with Locations((52.5, 52.5)):
            Circle(SKETCH14_R)
    extrude(amount=-CUT_EXTRUDE7_DEPTH, mode=Mode.SUBTRACT)

    # Sketch15 → Cut-Extrude8 (cut)
    with BuildSketch(Plane.XZ.offset(-44.7)):
        with Locations(Location((30, -5, 0), (0, 0, 270))):
            Circle(SKETCH15_R)
        with Locations(Location((18, -5, 0), (0, 0, 270))):
            Circle(SKETCH15_R)
        with Locations(Location((42, -5, 0), (0, 0, 270))):
            Circle(SKETCH15_R)
    extrude(amount=-CUT_EXTRUDE8_DEPTH, mode=Mode.SUBTRACT)


solid = part.part
